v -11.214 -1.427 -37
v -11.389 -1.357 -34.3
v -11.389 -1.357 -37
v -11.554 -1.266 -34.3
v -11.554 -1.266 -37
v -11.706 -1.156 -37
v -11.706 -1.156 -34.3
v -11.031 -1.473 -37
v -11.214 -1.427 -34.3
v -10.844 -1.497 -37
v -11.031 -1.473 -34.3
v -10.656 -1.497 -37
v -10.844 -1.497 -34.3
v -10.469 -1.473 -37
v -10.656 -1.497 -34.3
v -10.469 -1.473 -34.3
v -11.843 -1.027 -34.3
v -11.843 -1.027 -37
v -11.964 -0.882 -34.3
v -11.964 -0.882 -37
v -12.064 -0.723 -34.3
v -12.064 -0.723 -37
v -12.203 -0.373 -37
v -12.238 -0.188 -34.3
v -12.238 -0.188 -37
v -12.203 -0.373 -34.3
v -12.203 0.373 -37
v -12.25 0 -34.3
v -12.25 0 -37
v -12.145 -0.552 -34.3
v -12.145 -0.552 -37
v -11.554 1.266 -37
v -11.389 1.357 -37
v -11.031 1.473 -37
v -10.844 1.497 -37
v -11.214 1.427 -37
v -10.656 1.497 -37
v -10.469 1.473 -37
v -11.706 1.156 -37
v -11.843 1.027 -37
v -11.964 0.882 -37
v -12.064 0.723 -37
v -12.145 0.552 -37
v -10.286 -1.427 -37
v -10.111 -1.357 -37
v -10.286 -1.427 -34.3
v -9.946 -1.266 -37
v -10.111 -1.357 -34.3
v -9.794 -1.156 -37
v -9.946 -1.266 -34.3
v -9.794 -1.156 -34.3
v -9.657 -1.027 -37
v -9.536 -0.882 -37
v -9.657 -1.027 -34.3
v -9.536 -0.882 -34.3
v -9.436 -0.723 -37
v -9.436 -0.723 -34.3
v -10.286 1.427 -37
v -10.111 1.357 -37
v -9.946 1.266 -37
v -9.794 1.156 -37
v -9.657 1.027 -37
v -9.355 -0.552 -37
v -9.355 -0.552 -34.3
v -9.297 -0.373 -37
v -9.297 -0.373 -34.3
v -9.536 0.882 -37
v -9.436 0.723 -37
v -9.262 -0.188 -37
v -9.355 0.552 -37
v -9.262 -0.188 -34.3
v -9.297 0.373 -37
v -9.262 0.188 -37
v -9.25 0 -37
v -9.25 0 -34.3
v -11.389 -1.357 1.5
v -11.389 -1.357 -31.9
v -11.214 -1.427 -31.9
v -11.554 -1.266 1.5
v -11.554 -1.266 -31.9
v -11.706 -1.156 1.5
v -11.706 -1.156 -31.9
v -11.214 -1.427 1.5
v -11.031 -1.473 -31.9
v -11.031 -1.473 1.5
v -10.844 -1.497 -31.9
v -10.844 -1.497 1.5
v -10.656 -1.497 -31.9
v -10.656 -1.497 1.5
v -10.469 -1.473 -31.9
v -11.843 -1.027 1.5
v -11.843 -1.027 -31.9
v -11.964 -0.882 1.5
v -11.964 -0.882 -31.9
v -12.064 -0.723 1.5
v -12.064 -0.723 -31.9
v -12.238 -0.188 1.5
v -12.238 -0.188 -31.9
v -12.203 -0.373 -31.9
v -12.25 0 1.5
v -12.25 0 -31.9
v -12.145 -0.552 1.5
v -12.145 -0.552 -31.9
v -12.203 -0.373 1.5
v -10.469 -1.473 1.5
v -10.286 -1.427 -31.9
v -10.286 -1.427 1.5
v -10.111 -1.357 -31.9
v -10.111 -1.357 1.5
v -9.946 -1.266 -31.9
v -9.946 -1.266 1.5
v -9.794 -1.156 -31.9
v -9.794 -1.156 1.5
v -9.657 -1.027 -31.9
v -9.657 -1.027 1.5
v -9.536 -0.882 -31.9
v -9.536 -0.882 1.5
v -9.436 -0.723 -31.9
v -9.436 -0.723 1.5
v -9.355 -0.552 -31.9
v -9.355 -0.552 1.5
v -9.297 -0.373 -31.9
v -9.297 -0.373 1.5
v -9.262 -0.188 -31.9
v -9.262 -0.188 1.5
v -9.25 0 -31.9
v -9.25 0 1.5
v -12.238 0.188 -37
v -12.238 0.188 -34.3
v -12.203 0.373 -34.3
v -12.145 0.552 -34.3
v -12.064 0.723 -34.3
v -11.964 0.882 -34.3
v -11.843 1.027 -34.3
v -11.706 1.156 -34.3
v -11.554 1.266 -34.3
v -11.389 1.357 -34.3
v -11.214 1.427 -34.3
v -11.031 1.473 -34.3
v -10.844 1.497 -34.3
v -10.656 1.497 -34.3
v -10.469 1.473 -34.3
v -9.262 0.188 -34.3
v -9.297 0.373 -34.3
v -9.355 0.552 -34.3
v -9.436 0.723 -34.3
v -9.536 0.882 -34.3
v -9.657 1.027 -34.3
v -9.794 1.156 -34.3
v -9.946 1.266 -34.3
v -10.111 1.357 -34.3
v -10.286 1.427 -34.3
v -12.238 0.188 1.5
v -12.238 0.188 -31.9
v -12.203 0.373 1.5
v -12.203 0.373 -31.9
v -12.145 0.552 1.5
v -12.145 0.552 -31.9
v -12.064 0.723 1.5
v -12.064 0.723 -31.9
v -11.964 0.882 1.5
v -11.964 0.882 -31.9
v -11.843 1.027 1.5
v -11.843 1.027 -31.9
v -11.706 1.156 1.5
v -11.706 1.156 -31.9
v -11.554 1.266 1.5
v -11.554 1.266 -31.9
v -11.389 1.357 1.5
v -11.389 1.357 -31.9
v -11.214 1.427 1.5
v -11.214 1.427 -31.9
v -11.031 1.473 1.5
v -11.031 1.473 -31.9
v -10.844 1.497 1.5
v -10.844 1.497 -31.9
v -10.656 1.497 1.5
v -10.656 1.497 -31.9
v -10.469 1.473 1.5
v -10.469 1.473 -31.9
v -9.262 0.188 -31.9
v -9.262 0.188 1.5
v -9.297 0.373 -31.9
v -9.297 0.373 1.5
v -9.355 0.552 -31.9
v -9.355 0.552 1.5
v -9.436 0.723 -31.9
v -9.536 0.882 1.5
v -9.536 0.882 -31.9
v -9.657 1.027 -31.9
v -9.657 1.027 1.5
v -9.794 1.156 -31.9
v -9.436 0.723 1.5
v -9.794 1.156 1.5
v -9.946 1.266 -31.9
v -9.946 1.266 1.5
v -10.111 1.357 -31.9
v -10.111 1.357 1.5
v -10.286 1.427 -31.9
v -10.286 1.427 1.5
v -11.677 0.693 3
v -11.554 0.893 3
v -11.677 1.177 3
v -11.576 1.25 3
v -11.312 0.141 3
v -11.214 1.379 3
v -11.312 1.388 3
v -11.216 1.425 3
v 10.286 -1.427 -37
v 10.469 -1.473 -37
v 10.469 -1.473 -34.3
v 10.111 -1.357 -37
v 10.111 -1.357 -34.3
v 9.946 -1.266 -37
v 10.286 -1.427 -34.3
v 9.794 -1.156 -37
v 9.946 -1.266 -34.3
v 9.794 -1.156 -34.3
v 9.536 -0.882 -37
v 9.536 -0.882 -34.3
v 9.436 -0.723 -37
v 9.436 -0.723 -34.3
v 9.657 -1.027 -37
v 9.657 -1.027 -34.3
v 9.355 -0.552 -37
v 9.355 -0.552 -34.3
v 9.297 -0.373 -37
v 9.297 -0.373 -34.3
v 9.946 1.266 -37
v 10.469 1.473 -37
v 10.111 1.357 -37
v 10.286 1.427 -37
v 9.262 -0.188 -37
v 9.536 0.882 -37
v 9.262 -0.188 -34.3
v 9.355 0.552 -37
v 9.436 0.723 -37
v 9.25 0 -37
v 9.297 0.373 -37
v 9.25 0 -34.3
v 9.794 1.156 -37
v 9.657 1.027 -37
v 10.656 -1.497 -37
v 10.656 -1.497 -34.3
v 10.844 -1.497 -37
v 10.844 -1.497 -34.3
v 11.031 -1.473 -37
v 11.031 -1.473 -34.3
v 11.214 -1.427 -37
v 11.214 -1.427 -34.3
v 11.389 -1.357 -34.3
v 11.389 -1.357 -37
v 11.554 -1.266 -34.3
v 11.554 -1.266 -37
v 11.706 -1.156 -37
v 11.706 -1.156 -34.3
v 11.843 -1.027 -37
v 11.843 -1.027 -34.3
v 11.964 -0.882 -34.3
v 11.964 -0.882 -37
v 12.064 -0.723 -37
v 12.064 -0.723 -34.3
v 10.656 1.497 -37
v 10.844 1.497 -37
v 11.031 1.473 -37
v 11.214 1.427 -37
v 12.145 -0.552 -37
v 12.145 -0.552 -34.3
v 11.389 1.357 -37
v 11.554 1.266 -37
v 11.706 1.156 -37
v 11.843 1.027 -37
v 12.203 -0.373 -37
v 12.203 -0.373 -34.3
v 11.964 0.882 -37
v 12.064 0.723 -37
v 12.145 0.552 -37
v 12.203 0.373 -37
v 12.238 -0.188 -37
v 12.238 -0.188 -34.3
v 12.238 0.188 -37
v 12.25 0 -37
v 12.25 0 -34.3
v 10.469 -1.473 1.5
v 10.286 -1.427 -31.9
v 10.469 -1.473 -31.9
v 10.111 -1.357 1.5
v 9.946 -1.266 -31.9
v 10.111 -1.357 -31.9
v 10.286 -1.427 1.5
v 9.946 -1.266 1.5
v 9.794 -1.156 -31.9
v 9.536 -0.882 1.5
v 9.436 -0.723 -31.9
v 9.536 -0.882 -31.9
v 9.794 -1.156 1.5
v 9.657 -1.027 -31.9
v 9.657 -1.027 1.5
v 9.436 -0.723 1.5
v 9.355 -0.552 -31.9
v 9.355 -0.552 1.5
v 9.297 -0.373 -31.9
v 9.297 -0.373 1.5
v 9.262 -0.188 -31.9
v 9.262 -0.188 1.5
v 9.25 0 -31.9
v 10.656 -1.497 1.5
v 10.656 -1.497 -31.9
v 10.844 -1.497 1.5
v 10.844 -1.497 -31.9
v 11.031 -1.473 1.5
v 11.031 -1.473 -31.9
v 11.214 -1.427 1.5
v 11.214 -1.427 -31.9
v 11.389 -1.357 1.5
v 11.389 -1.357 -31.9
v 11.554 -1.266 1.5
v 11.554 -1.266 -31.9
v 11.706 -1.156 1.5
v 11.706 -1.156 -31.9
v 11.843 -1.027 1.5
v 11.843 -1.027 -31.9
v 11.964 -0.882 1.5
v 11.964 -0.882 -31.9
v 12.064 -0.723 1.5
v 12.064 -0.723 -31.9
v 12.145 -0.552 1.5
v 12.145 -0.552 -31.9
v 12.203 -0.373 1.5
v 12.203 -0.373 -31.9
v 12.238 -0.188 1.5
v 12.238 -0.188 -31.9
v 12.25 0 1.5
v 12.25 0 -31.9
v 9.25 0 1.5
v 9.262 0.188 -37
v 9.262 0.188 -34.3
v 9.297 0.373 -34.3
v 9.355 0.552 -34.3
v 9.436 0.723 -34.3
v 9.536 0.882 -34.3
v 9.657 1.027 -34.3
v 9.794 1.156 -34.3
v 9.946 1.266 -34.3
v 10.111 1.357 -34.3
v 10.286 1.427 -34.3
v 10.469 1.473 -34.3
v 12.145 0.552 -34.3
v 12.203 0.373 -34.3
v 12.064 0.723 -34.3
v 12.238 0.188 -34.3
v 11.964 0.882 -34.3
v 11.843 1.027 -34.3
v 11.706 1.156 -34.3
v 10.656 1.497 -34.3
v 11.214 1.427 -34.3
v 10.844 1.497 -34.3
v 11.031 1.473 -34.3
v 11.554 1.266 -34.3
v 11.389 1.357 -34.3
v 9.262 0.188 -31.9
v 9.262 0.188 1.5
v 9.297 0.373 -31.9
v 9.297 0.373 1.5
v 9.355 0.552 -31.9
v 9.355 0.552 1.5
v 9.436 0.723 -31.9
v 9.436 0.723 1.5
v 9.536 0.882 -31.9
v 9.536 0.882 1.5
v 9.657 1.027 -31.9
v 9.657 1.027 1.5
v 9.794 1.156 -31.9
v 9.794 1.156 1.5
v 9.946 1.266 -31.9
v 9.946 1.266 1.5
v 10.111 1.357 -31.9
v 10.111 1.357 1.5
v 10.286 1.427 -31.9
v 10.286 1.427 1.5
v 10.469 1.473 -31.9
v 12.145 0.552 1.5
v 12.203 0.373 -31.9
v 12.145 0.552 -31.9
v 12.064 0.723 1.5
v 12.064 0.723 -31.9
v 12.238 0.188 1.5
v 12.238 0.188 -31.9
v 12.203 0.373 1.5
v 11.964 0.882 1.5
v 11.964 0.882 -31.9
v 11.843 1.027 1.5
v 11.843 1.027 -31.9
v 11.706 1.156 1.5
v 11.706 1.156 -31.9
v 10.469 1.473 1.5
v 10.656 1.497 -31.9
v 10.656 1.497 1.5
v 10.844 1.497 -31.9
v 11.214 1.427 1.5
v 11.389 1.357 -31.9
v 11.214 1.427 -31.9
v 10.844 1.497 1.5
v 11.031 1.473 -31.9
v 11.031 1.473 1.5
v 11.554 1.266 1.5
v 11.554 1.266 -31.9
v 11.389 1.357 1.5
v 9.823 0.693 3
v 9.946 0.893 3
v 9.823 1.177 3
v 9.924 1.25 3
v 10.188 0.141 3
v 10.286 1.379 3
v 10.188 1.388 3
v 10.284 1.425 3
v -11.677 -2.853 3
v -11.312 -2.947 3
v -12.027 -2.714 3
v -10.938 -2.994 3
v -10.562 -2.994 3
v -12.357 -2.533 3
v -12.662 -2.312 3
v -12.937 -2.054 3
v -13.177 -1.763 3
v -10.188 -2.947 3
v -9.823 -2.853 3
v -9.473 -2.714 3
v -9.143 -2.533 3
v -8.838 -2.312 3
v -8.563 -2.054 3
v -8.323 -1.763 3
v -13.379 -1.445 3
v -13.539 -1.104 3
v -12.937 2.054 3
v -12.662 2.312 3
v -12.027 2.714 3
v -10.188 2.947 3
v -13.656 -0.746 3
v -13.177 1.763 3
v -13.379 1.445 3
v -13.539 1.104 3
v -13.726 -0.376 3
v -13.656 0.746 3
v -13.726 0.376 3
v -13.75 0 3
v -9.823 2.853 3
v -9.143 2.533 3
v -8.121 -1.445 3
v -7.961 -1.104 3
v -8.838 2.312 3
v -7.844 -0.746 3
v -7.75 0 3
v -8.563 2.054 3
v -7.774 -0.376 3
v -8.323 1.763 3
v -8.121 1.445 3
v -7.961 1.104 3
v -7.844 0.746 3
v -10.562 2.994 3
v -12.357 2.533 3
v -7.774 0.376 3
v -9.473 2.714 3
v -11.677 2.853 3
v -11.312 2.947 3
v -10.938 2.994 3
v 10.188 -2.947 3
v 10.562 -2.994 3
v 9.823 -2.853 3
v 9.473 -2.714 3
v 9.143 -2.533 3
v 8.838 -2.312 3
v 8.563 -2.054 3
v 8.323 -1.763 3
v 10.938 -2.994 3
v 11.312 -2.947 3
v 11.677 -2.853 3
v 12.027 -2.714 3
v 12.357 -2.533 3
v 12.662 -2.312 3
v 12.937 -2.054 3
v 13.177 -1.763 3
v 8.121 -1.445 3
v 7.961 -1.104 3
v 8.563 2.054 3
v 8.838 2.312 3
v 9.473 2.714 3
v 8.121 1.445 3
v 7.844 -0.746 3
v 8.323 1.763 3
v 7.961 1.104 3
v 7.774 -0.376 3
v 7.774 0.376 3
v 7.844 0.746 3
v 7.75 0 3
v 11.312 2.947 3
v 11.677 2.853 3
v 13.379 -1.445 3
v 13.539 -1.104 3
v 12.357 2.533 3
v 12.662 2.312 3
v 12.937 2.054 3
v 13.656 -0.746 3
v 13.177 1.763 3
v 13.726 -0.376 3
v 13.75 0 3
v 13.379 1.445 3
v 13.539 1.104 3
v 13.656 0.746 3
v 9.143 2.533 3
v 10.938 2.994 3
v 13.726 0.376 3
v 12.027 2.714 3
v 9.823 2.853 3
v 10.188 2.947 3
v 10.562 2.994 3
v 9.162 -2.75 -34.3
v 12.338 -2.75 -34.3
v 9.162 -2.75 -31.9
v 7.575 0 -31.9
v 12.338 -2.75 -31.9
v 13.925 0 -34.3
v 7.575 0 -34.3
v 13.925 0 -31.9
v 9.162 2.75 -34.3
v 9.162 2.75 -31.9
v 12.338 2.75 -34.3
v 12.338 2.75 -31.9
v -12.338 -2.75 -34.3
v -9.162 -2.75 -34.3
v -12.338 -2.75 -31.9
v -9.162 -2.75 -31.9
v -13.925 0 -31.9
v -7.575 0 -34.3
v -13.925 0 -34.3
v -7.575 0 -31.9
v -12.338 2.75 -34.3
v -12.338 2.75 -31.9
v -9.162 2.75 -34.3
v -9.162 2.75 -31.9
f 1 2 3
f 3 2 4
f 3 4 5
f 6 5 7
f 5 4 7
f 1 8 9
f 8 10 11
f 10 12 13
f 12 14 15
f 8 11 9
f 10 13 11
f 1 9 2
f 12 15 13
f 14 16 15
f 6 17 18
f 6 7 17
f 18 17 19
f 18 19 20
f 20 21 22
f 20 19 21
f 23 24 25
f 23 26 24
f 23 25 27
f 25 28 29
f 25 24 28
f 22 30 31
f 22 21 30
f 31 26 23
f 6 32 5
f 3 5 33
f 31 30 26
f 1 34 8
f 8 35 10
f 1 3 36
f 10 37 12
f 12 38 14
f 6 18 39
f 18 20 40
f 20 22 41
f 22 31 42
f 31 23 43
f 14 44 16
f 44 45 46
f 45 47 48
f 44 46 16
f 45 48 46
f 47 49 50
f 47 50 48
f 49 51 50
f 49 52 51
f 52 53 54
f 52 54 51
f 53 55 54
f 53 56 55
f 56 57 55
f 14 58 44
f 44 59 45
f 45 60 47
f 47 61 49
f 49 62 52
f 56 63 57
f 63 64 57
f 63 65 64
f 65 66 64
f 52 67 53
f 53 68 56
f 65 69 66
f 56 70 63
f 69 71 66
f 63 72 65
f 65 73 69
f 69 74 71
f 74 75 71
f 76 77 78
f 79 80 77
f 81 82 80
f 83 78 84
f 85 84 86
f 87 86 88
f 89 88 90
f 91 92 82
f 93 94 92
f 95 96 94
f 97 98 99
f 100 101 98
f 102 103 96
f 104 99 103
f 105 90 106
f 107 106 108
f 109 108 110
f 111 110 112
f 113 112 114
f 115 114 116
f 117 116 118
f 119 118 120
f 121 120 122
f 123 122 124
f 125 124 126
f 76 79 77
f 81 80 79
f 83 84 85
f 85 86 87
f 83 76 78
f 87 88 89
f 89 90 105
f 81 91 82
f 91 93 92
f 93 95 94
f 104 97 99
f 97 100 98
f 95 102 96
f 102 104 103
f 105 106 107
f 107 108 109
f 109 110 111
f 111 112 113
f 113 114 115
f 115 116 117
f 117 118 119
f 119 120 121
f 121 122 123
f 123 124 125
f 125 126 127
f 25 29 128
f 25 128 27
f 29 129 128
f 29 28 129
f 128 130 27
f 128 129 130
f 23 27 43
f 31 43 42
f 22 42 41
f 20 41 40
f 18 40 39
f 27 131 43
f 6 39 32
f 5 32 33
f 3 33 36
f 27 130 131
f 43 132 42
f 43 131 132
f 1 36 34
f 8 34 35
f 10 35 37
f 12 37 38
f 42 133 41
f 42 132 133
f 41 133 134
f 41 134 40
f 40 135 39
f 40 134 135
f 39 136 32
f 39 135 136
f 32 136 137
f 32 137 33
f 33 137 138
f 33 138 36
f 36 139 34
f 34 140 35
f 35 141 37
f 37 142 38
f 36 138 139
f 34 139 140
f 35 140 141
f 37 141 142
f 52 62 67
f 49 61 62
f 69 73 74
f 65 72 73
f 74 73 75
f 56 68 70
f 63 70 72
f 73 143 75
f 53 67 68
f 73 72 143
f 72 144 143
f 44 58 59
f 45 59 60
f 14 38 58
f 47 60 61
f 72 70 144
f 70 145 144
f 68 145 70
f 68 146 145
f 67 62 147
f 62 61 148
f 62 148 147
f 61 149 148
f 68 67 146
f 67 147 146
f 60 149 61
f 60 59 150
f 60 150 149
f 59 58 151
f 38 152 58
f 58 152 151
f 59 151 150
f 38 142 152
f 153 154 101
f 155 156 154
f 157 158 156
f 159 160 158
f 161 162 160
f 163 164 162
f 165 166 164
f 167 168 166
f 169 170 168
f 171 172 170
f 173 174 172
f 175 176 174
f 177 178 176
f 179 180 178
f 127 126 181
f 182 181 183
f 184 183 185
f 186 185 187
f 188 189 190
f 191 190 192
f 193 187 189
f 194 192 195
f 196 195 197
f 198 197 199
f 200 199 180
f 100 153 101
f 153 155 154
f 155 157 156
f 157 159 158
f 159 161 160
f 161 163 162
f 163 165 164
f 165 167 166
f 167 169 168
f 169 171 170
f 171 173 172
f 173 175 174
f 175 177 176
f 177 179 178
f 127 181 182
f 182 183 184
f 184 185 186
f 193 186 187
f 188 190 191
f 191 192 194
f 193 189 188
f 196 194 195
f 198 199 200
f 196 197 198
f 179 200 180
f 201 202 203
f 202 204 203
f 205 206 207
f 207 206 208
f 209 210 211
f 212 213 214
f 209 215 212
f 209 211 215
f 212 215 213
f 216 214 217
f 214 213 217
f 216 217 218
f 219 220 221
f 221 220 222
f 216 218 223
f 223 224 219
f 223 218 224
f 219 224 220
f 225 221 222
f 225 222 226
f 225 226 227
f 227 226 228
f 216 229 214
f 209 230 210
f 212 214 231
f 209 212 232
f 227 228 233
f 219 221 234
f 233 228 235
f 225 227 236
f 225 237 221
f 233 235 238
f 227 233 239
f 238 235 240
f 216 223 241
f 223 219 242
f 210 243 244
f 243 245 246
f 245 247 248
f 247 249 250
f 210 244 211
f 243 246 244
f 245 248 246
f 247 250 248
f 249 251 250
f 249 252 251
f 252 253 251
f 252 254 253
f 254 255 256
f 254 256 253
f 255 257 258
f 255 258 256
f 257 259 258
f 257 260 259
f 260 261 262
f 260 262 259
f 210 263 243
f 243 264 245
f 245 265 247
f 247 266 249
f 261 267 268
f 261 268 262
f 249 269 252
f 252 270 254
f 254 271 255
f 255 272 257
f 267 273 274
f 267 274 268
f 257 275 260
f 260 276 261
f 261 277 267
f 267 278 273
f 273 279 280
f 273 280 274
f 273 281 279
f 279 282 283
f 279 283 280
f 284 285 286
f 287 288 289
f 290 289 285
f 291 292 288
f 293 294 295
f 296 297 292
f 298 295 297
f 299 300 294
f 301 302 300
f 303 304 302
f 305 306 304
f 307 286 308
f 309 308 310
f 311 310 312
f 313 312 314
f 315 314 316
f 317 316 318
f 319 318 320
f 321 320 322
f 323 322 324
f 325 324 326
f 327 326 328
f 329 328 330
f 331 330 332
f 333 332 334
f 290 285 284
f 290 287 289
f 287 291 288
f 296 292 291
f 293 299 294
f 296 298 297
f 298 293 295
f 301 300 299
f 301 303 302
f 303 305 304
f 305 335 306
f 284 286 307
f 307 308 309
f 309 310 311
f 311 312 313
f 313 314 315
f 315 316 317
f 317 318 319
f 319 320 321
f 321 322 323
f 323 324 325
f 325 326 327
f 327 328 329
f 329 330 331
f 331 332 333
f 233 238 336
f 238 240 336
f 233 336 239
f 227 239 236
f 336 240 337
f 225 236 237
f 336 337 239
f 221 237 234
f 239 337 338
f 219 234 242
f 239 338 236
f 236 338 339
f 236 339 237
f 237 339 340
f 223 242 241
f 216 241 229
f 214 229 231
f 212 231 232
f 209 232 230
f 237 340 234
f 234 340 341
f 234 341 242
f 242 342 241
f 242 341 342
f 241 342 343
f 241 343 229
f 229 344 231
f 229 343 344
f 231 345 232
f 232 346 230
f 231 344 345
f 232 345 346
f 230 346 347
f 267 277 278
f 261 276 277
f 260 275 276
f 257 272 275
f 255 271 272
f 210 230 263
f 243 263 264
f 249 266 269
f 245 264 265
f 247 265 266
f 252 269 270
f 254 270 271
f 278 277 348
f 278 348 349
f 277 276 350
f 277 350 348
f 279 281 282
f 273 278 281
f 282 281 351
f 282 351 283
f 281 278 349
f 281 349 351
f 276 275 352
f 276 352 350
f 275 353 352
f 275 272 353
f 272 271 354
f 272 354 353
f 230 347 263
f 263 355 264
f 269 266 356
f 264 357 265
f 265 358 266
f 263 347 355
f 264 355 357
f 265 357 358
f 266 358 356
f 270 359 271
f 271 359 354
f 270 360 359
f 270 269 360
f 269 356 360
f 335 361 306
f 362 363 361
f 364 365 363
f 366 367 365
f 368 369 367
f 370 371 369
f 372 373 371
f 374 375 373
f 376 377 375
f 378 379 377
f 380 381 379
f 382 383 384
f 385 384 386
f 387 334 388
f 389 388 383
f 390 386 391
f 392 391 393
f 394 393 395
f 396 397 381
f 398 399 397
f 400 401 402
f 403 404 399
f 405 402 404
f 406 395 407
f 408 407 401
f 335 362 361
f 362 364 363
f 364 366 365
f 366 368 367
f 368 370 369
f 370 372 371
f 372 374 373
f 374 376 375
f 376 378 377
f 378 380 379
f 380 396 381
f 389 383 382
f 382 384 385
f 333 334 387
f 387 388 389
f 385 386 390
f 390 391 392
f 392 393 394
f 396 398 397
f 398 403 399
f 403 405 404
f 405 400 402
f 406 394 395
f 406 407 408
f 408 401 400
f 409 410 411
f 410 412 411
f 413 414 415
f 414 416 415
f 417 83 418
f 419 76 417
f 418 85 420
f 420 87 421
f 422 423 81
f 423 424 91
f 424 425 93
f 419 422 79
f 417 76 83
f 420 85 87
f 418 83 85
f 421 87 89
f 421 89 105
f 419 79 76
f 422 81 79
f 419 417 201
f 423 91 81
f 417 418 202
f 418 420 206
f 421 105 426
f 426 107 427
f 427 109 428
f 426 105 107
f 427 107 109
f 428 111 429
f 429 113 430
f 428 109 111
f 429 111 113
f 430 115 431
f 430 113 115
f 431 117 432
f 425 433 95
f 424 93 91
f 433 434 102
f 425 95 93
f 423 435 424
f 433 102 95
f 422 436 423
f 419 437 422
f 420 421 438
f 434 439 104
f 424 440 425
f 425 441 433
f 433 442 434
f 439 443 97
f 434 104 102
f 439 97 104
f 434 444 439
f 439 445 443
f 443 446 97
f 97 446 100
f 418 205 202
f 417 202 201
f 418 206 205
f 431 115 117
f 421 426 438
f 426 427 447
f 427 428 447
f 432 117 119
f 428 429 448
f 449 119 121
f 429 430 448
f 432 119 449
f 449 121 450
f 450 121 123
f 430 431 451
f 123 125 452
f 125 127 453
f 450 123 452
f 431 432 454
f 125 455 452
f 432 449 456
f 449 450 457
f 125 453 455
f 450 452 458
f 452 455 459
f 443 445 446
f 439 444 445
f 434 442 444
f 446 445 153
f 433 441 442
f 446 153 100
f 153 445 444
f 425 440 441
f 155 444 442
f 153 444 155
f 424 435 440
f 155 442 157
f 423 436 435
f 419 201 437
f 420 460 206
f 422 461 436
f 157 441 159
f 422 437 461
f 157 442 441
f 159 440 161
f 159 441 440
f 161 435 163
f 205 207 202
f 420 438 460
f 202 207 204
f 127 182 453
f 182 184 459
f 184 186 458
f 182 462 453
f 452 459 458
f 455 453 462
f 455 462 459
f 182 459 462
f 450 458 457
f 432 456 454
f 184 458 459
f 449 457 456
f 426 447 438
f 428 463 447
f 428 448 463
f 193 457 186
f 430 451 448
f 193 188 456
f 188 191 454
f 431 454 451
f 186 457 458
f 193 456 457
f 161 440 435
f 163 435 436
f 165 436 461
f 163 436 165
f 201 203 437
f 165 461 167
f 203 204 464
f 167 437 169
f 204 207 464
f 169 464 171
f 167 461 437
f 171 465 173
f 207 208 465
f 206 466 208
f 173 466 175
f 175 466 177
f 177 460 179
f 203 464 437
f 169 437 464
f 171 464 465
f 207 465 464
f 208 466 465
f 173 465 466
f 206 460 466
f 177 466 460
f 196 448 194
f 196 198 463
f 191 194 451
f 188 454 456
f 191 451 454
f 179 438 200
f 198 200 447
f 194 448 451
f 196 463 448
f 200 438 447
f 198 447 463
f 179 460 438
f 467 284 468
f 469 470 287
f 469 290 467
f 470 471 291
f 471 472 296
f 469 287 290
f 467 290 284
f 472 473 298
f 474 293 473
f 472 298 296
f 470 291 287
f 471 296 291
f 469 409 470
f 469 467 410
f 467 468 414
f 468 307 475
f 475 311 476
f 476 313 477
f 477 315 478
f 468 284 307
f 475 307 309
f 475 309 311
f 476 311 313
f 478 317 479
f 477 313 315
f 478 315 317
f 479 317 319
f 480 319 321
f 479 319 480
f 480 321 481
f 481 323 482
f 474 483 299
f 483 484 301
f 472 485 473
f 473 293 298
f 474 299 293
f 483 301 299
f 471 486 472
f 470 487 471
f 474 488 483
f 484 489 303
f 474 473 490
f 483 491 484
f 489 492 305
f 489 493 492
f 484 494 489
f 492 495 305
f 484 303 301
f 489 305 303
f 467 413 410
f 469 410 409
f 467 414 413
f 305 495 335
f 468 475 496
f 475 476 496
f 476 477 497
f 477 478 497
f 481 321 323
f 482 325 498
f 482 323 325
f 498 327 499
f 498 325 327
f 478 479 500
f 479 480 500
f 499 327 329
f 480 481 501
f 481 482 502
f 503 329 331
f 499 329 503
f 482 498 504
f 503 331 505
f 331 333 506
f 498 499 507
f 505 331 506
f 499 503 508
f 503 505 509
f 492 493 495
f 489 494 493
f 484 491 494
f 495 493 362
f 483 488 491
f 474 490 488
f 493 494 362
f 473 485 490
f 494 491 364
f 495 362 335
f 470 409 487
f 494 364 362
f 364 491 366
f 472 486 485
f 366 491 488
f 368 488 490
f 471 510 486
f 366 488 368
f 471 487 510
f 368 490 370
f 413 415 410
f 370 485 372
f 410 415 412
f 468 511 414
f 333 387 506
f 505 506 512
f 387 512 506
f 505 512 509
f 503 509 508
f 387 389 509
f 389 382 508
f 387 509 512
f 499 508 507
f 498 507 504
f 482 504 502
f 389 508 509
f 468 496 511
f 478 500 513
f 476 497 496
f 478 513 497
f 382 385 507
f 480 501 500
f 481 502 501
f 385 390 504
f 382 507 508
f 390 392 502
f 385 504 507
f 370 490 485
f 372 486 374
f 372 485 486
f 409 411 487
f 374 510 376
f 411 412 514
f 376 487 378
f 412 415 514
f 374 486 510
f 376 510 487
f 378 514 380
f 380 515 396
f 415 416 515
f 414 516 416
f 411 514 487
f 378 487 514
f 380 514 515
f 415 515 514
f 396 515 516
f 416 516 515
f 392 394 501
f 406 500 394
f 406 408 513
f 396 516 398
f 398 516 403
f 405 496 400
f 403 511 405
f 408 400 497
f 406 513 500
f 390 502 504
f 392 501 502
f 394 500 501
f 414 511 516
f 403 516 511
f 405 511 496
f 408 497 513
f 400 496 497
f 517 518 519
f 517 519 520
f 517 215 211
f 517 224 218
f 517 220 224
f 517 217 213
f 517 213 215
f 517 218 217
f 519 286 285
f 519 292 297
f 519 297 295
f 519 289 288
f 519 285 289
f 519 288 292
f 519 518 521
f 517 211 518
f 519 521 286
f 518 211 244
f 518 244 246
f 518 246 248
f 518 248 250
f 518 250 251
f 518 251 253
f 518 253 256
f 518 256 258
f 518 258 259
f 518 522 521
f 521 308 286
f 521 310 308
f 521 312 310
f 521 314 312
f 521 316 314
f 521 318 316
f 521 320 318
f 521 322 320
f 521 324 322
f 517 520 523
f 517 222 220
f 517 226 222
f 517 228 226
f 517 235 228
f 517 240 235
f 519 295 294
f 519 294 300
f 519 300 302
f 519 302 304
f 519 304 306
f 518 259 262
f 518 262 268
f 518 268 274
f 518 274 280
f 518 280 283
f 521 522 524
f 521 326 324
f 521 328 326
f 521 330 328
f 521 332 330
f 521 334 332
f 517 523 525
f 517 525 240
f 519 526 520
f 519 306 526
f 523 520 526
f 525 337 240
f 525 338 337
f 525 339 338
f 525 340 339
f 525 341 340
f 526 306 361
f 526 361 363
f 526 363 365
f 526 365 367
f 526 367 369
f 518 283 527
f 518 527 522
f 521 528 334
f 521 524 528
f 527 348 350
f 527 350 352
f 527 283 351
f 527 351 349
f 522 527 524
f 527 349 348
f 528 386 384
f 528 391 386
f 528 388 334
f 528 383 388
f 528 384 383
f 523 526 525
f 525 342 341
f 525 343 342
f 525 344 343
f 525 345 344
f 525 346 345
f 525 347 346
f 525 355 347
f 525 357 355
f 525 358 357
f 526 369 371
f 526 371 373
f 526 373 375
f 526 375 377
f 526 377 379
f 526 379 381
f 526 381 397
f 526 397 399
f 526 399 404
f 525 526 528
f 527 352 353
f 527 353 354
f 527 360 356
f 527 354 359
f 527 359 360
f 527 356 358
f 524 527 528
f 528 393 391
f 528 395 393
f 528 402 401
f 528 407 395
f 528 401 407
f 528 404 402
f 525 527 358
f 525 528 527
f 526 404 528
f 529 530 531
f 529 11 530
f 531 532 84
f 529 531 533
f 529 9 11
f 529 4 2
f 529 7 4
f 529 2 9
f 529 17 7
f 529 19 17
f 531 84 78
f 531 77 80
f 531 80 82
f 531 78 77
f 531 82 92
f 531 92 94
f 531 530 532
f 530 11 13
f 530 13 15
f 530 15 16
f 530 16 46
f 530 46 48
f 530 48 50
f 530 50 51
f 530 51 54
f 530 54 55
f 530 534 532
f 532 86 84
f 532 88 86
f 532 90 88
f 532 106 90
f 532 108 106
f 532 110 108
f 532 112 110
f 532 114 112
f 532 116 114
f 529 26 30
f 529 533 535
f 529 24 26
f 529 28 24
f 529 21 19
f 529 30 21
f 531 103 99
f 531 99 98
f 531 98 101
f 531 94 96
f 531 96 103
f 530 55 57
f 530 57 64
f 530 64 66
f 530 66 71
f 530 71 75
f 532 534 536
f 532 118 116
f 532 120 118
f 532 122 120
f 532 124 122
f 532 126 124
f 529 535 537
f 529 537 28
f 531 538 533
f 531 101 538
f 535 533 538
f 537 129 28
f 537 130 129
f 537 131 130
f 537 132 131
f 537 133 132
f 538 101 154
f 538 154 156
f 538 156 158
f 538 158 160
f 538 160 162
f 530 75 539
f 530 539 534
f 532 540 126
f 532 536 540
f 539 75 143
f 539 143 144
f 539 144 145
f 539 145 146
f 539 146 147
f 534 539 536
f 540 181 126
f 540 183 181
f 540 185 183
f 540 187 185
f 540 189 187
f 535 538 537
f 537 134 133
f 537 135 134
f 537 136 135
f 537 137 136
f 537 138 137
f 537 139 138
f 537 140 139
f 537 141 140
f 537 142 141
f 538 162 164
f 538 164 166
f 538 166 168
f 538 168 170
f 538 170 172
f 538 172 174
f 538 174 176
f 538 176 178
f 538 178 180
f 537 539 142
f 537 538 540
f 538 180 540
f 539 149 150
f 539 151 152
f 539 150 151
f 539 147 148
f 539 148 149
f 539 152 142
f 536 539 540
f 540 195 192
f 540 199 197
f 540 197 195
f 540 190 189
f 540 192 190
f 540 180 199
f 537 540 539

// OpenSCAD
$fn = 50;

difference() {
	union() {
		translate(v = [-10.75, 0, 3]) {
			rotate(a = [0, 0, 0]) {
				difference() {
					union() {
						translate(v = [0, 0, -40.0]) {
							cylinder(h = 40, r = 1.5);
						}
						translate(v = [0, 0, -1.5]) {
							cylinder(h = 1.5, r1 = 1.5, r2 = 3);
						}
					}
					union();
				}
			}
		}
		translate(v = [-10.75, 0, -34.3]) {
			rotate(a = [0, 0, 0]) {
				difference() {
					union() {
						linear_extrude(height = 2.4) {
							polygon(points = [[3.1754264805429417, 0.0], [1.5877132402714713, 2.75], [-1.5877132402714702, 2.7500000000000004], [-3.1754264805429417, 3.888775875324659e-16], [-1.5877132402714722, -2.7499999999999996], [1.5877132402714687, -2.7500000000000013]]);
						}
					}
					union();
				}
			}
		}
		translate(v = [10.75, 0, 3]) {
			rotate(a = [0, 0, 0]) {
				difference() {
					union() {
						translate(v = [0, 0, -40.0]) {
							cylinder(h = 40, r = 1.5);
						}
						translate(v = [0, 0, -1.5]) {
							cylinder(h = 1.5, r1 = 1.5, r2 = 3);
						}
					}
					union();
				}
			}
		}
		translate(v = [10.75, 0, -34.3]) {
			rotate(a = [0, 0, 0]) {
				difference() {
					union() {
						linear_extrude(height = 2.4) {
							polygon(points = [[3.1754264805429417, 0.0], [1.5877132402714713, 2.75], [-1.5877132402714702, 2.7500000000000004], [-3.1754264805429417, 3.888775875324659e-16], [-1.5877132402714722, -2.7499999999999996], [1.5877132402714687, -2.7500000000000013]]);
						}
					}
					union();
				}
			}
		}
	}
	union();
}
